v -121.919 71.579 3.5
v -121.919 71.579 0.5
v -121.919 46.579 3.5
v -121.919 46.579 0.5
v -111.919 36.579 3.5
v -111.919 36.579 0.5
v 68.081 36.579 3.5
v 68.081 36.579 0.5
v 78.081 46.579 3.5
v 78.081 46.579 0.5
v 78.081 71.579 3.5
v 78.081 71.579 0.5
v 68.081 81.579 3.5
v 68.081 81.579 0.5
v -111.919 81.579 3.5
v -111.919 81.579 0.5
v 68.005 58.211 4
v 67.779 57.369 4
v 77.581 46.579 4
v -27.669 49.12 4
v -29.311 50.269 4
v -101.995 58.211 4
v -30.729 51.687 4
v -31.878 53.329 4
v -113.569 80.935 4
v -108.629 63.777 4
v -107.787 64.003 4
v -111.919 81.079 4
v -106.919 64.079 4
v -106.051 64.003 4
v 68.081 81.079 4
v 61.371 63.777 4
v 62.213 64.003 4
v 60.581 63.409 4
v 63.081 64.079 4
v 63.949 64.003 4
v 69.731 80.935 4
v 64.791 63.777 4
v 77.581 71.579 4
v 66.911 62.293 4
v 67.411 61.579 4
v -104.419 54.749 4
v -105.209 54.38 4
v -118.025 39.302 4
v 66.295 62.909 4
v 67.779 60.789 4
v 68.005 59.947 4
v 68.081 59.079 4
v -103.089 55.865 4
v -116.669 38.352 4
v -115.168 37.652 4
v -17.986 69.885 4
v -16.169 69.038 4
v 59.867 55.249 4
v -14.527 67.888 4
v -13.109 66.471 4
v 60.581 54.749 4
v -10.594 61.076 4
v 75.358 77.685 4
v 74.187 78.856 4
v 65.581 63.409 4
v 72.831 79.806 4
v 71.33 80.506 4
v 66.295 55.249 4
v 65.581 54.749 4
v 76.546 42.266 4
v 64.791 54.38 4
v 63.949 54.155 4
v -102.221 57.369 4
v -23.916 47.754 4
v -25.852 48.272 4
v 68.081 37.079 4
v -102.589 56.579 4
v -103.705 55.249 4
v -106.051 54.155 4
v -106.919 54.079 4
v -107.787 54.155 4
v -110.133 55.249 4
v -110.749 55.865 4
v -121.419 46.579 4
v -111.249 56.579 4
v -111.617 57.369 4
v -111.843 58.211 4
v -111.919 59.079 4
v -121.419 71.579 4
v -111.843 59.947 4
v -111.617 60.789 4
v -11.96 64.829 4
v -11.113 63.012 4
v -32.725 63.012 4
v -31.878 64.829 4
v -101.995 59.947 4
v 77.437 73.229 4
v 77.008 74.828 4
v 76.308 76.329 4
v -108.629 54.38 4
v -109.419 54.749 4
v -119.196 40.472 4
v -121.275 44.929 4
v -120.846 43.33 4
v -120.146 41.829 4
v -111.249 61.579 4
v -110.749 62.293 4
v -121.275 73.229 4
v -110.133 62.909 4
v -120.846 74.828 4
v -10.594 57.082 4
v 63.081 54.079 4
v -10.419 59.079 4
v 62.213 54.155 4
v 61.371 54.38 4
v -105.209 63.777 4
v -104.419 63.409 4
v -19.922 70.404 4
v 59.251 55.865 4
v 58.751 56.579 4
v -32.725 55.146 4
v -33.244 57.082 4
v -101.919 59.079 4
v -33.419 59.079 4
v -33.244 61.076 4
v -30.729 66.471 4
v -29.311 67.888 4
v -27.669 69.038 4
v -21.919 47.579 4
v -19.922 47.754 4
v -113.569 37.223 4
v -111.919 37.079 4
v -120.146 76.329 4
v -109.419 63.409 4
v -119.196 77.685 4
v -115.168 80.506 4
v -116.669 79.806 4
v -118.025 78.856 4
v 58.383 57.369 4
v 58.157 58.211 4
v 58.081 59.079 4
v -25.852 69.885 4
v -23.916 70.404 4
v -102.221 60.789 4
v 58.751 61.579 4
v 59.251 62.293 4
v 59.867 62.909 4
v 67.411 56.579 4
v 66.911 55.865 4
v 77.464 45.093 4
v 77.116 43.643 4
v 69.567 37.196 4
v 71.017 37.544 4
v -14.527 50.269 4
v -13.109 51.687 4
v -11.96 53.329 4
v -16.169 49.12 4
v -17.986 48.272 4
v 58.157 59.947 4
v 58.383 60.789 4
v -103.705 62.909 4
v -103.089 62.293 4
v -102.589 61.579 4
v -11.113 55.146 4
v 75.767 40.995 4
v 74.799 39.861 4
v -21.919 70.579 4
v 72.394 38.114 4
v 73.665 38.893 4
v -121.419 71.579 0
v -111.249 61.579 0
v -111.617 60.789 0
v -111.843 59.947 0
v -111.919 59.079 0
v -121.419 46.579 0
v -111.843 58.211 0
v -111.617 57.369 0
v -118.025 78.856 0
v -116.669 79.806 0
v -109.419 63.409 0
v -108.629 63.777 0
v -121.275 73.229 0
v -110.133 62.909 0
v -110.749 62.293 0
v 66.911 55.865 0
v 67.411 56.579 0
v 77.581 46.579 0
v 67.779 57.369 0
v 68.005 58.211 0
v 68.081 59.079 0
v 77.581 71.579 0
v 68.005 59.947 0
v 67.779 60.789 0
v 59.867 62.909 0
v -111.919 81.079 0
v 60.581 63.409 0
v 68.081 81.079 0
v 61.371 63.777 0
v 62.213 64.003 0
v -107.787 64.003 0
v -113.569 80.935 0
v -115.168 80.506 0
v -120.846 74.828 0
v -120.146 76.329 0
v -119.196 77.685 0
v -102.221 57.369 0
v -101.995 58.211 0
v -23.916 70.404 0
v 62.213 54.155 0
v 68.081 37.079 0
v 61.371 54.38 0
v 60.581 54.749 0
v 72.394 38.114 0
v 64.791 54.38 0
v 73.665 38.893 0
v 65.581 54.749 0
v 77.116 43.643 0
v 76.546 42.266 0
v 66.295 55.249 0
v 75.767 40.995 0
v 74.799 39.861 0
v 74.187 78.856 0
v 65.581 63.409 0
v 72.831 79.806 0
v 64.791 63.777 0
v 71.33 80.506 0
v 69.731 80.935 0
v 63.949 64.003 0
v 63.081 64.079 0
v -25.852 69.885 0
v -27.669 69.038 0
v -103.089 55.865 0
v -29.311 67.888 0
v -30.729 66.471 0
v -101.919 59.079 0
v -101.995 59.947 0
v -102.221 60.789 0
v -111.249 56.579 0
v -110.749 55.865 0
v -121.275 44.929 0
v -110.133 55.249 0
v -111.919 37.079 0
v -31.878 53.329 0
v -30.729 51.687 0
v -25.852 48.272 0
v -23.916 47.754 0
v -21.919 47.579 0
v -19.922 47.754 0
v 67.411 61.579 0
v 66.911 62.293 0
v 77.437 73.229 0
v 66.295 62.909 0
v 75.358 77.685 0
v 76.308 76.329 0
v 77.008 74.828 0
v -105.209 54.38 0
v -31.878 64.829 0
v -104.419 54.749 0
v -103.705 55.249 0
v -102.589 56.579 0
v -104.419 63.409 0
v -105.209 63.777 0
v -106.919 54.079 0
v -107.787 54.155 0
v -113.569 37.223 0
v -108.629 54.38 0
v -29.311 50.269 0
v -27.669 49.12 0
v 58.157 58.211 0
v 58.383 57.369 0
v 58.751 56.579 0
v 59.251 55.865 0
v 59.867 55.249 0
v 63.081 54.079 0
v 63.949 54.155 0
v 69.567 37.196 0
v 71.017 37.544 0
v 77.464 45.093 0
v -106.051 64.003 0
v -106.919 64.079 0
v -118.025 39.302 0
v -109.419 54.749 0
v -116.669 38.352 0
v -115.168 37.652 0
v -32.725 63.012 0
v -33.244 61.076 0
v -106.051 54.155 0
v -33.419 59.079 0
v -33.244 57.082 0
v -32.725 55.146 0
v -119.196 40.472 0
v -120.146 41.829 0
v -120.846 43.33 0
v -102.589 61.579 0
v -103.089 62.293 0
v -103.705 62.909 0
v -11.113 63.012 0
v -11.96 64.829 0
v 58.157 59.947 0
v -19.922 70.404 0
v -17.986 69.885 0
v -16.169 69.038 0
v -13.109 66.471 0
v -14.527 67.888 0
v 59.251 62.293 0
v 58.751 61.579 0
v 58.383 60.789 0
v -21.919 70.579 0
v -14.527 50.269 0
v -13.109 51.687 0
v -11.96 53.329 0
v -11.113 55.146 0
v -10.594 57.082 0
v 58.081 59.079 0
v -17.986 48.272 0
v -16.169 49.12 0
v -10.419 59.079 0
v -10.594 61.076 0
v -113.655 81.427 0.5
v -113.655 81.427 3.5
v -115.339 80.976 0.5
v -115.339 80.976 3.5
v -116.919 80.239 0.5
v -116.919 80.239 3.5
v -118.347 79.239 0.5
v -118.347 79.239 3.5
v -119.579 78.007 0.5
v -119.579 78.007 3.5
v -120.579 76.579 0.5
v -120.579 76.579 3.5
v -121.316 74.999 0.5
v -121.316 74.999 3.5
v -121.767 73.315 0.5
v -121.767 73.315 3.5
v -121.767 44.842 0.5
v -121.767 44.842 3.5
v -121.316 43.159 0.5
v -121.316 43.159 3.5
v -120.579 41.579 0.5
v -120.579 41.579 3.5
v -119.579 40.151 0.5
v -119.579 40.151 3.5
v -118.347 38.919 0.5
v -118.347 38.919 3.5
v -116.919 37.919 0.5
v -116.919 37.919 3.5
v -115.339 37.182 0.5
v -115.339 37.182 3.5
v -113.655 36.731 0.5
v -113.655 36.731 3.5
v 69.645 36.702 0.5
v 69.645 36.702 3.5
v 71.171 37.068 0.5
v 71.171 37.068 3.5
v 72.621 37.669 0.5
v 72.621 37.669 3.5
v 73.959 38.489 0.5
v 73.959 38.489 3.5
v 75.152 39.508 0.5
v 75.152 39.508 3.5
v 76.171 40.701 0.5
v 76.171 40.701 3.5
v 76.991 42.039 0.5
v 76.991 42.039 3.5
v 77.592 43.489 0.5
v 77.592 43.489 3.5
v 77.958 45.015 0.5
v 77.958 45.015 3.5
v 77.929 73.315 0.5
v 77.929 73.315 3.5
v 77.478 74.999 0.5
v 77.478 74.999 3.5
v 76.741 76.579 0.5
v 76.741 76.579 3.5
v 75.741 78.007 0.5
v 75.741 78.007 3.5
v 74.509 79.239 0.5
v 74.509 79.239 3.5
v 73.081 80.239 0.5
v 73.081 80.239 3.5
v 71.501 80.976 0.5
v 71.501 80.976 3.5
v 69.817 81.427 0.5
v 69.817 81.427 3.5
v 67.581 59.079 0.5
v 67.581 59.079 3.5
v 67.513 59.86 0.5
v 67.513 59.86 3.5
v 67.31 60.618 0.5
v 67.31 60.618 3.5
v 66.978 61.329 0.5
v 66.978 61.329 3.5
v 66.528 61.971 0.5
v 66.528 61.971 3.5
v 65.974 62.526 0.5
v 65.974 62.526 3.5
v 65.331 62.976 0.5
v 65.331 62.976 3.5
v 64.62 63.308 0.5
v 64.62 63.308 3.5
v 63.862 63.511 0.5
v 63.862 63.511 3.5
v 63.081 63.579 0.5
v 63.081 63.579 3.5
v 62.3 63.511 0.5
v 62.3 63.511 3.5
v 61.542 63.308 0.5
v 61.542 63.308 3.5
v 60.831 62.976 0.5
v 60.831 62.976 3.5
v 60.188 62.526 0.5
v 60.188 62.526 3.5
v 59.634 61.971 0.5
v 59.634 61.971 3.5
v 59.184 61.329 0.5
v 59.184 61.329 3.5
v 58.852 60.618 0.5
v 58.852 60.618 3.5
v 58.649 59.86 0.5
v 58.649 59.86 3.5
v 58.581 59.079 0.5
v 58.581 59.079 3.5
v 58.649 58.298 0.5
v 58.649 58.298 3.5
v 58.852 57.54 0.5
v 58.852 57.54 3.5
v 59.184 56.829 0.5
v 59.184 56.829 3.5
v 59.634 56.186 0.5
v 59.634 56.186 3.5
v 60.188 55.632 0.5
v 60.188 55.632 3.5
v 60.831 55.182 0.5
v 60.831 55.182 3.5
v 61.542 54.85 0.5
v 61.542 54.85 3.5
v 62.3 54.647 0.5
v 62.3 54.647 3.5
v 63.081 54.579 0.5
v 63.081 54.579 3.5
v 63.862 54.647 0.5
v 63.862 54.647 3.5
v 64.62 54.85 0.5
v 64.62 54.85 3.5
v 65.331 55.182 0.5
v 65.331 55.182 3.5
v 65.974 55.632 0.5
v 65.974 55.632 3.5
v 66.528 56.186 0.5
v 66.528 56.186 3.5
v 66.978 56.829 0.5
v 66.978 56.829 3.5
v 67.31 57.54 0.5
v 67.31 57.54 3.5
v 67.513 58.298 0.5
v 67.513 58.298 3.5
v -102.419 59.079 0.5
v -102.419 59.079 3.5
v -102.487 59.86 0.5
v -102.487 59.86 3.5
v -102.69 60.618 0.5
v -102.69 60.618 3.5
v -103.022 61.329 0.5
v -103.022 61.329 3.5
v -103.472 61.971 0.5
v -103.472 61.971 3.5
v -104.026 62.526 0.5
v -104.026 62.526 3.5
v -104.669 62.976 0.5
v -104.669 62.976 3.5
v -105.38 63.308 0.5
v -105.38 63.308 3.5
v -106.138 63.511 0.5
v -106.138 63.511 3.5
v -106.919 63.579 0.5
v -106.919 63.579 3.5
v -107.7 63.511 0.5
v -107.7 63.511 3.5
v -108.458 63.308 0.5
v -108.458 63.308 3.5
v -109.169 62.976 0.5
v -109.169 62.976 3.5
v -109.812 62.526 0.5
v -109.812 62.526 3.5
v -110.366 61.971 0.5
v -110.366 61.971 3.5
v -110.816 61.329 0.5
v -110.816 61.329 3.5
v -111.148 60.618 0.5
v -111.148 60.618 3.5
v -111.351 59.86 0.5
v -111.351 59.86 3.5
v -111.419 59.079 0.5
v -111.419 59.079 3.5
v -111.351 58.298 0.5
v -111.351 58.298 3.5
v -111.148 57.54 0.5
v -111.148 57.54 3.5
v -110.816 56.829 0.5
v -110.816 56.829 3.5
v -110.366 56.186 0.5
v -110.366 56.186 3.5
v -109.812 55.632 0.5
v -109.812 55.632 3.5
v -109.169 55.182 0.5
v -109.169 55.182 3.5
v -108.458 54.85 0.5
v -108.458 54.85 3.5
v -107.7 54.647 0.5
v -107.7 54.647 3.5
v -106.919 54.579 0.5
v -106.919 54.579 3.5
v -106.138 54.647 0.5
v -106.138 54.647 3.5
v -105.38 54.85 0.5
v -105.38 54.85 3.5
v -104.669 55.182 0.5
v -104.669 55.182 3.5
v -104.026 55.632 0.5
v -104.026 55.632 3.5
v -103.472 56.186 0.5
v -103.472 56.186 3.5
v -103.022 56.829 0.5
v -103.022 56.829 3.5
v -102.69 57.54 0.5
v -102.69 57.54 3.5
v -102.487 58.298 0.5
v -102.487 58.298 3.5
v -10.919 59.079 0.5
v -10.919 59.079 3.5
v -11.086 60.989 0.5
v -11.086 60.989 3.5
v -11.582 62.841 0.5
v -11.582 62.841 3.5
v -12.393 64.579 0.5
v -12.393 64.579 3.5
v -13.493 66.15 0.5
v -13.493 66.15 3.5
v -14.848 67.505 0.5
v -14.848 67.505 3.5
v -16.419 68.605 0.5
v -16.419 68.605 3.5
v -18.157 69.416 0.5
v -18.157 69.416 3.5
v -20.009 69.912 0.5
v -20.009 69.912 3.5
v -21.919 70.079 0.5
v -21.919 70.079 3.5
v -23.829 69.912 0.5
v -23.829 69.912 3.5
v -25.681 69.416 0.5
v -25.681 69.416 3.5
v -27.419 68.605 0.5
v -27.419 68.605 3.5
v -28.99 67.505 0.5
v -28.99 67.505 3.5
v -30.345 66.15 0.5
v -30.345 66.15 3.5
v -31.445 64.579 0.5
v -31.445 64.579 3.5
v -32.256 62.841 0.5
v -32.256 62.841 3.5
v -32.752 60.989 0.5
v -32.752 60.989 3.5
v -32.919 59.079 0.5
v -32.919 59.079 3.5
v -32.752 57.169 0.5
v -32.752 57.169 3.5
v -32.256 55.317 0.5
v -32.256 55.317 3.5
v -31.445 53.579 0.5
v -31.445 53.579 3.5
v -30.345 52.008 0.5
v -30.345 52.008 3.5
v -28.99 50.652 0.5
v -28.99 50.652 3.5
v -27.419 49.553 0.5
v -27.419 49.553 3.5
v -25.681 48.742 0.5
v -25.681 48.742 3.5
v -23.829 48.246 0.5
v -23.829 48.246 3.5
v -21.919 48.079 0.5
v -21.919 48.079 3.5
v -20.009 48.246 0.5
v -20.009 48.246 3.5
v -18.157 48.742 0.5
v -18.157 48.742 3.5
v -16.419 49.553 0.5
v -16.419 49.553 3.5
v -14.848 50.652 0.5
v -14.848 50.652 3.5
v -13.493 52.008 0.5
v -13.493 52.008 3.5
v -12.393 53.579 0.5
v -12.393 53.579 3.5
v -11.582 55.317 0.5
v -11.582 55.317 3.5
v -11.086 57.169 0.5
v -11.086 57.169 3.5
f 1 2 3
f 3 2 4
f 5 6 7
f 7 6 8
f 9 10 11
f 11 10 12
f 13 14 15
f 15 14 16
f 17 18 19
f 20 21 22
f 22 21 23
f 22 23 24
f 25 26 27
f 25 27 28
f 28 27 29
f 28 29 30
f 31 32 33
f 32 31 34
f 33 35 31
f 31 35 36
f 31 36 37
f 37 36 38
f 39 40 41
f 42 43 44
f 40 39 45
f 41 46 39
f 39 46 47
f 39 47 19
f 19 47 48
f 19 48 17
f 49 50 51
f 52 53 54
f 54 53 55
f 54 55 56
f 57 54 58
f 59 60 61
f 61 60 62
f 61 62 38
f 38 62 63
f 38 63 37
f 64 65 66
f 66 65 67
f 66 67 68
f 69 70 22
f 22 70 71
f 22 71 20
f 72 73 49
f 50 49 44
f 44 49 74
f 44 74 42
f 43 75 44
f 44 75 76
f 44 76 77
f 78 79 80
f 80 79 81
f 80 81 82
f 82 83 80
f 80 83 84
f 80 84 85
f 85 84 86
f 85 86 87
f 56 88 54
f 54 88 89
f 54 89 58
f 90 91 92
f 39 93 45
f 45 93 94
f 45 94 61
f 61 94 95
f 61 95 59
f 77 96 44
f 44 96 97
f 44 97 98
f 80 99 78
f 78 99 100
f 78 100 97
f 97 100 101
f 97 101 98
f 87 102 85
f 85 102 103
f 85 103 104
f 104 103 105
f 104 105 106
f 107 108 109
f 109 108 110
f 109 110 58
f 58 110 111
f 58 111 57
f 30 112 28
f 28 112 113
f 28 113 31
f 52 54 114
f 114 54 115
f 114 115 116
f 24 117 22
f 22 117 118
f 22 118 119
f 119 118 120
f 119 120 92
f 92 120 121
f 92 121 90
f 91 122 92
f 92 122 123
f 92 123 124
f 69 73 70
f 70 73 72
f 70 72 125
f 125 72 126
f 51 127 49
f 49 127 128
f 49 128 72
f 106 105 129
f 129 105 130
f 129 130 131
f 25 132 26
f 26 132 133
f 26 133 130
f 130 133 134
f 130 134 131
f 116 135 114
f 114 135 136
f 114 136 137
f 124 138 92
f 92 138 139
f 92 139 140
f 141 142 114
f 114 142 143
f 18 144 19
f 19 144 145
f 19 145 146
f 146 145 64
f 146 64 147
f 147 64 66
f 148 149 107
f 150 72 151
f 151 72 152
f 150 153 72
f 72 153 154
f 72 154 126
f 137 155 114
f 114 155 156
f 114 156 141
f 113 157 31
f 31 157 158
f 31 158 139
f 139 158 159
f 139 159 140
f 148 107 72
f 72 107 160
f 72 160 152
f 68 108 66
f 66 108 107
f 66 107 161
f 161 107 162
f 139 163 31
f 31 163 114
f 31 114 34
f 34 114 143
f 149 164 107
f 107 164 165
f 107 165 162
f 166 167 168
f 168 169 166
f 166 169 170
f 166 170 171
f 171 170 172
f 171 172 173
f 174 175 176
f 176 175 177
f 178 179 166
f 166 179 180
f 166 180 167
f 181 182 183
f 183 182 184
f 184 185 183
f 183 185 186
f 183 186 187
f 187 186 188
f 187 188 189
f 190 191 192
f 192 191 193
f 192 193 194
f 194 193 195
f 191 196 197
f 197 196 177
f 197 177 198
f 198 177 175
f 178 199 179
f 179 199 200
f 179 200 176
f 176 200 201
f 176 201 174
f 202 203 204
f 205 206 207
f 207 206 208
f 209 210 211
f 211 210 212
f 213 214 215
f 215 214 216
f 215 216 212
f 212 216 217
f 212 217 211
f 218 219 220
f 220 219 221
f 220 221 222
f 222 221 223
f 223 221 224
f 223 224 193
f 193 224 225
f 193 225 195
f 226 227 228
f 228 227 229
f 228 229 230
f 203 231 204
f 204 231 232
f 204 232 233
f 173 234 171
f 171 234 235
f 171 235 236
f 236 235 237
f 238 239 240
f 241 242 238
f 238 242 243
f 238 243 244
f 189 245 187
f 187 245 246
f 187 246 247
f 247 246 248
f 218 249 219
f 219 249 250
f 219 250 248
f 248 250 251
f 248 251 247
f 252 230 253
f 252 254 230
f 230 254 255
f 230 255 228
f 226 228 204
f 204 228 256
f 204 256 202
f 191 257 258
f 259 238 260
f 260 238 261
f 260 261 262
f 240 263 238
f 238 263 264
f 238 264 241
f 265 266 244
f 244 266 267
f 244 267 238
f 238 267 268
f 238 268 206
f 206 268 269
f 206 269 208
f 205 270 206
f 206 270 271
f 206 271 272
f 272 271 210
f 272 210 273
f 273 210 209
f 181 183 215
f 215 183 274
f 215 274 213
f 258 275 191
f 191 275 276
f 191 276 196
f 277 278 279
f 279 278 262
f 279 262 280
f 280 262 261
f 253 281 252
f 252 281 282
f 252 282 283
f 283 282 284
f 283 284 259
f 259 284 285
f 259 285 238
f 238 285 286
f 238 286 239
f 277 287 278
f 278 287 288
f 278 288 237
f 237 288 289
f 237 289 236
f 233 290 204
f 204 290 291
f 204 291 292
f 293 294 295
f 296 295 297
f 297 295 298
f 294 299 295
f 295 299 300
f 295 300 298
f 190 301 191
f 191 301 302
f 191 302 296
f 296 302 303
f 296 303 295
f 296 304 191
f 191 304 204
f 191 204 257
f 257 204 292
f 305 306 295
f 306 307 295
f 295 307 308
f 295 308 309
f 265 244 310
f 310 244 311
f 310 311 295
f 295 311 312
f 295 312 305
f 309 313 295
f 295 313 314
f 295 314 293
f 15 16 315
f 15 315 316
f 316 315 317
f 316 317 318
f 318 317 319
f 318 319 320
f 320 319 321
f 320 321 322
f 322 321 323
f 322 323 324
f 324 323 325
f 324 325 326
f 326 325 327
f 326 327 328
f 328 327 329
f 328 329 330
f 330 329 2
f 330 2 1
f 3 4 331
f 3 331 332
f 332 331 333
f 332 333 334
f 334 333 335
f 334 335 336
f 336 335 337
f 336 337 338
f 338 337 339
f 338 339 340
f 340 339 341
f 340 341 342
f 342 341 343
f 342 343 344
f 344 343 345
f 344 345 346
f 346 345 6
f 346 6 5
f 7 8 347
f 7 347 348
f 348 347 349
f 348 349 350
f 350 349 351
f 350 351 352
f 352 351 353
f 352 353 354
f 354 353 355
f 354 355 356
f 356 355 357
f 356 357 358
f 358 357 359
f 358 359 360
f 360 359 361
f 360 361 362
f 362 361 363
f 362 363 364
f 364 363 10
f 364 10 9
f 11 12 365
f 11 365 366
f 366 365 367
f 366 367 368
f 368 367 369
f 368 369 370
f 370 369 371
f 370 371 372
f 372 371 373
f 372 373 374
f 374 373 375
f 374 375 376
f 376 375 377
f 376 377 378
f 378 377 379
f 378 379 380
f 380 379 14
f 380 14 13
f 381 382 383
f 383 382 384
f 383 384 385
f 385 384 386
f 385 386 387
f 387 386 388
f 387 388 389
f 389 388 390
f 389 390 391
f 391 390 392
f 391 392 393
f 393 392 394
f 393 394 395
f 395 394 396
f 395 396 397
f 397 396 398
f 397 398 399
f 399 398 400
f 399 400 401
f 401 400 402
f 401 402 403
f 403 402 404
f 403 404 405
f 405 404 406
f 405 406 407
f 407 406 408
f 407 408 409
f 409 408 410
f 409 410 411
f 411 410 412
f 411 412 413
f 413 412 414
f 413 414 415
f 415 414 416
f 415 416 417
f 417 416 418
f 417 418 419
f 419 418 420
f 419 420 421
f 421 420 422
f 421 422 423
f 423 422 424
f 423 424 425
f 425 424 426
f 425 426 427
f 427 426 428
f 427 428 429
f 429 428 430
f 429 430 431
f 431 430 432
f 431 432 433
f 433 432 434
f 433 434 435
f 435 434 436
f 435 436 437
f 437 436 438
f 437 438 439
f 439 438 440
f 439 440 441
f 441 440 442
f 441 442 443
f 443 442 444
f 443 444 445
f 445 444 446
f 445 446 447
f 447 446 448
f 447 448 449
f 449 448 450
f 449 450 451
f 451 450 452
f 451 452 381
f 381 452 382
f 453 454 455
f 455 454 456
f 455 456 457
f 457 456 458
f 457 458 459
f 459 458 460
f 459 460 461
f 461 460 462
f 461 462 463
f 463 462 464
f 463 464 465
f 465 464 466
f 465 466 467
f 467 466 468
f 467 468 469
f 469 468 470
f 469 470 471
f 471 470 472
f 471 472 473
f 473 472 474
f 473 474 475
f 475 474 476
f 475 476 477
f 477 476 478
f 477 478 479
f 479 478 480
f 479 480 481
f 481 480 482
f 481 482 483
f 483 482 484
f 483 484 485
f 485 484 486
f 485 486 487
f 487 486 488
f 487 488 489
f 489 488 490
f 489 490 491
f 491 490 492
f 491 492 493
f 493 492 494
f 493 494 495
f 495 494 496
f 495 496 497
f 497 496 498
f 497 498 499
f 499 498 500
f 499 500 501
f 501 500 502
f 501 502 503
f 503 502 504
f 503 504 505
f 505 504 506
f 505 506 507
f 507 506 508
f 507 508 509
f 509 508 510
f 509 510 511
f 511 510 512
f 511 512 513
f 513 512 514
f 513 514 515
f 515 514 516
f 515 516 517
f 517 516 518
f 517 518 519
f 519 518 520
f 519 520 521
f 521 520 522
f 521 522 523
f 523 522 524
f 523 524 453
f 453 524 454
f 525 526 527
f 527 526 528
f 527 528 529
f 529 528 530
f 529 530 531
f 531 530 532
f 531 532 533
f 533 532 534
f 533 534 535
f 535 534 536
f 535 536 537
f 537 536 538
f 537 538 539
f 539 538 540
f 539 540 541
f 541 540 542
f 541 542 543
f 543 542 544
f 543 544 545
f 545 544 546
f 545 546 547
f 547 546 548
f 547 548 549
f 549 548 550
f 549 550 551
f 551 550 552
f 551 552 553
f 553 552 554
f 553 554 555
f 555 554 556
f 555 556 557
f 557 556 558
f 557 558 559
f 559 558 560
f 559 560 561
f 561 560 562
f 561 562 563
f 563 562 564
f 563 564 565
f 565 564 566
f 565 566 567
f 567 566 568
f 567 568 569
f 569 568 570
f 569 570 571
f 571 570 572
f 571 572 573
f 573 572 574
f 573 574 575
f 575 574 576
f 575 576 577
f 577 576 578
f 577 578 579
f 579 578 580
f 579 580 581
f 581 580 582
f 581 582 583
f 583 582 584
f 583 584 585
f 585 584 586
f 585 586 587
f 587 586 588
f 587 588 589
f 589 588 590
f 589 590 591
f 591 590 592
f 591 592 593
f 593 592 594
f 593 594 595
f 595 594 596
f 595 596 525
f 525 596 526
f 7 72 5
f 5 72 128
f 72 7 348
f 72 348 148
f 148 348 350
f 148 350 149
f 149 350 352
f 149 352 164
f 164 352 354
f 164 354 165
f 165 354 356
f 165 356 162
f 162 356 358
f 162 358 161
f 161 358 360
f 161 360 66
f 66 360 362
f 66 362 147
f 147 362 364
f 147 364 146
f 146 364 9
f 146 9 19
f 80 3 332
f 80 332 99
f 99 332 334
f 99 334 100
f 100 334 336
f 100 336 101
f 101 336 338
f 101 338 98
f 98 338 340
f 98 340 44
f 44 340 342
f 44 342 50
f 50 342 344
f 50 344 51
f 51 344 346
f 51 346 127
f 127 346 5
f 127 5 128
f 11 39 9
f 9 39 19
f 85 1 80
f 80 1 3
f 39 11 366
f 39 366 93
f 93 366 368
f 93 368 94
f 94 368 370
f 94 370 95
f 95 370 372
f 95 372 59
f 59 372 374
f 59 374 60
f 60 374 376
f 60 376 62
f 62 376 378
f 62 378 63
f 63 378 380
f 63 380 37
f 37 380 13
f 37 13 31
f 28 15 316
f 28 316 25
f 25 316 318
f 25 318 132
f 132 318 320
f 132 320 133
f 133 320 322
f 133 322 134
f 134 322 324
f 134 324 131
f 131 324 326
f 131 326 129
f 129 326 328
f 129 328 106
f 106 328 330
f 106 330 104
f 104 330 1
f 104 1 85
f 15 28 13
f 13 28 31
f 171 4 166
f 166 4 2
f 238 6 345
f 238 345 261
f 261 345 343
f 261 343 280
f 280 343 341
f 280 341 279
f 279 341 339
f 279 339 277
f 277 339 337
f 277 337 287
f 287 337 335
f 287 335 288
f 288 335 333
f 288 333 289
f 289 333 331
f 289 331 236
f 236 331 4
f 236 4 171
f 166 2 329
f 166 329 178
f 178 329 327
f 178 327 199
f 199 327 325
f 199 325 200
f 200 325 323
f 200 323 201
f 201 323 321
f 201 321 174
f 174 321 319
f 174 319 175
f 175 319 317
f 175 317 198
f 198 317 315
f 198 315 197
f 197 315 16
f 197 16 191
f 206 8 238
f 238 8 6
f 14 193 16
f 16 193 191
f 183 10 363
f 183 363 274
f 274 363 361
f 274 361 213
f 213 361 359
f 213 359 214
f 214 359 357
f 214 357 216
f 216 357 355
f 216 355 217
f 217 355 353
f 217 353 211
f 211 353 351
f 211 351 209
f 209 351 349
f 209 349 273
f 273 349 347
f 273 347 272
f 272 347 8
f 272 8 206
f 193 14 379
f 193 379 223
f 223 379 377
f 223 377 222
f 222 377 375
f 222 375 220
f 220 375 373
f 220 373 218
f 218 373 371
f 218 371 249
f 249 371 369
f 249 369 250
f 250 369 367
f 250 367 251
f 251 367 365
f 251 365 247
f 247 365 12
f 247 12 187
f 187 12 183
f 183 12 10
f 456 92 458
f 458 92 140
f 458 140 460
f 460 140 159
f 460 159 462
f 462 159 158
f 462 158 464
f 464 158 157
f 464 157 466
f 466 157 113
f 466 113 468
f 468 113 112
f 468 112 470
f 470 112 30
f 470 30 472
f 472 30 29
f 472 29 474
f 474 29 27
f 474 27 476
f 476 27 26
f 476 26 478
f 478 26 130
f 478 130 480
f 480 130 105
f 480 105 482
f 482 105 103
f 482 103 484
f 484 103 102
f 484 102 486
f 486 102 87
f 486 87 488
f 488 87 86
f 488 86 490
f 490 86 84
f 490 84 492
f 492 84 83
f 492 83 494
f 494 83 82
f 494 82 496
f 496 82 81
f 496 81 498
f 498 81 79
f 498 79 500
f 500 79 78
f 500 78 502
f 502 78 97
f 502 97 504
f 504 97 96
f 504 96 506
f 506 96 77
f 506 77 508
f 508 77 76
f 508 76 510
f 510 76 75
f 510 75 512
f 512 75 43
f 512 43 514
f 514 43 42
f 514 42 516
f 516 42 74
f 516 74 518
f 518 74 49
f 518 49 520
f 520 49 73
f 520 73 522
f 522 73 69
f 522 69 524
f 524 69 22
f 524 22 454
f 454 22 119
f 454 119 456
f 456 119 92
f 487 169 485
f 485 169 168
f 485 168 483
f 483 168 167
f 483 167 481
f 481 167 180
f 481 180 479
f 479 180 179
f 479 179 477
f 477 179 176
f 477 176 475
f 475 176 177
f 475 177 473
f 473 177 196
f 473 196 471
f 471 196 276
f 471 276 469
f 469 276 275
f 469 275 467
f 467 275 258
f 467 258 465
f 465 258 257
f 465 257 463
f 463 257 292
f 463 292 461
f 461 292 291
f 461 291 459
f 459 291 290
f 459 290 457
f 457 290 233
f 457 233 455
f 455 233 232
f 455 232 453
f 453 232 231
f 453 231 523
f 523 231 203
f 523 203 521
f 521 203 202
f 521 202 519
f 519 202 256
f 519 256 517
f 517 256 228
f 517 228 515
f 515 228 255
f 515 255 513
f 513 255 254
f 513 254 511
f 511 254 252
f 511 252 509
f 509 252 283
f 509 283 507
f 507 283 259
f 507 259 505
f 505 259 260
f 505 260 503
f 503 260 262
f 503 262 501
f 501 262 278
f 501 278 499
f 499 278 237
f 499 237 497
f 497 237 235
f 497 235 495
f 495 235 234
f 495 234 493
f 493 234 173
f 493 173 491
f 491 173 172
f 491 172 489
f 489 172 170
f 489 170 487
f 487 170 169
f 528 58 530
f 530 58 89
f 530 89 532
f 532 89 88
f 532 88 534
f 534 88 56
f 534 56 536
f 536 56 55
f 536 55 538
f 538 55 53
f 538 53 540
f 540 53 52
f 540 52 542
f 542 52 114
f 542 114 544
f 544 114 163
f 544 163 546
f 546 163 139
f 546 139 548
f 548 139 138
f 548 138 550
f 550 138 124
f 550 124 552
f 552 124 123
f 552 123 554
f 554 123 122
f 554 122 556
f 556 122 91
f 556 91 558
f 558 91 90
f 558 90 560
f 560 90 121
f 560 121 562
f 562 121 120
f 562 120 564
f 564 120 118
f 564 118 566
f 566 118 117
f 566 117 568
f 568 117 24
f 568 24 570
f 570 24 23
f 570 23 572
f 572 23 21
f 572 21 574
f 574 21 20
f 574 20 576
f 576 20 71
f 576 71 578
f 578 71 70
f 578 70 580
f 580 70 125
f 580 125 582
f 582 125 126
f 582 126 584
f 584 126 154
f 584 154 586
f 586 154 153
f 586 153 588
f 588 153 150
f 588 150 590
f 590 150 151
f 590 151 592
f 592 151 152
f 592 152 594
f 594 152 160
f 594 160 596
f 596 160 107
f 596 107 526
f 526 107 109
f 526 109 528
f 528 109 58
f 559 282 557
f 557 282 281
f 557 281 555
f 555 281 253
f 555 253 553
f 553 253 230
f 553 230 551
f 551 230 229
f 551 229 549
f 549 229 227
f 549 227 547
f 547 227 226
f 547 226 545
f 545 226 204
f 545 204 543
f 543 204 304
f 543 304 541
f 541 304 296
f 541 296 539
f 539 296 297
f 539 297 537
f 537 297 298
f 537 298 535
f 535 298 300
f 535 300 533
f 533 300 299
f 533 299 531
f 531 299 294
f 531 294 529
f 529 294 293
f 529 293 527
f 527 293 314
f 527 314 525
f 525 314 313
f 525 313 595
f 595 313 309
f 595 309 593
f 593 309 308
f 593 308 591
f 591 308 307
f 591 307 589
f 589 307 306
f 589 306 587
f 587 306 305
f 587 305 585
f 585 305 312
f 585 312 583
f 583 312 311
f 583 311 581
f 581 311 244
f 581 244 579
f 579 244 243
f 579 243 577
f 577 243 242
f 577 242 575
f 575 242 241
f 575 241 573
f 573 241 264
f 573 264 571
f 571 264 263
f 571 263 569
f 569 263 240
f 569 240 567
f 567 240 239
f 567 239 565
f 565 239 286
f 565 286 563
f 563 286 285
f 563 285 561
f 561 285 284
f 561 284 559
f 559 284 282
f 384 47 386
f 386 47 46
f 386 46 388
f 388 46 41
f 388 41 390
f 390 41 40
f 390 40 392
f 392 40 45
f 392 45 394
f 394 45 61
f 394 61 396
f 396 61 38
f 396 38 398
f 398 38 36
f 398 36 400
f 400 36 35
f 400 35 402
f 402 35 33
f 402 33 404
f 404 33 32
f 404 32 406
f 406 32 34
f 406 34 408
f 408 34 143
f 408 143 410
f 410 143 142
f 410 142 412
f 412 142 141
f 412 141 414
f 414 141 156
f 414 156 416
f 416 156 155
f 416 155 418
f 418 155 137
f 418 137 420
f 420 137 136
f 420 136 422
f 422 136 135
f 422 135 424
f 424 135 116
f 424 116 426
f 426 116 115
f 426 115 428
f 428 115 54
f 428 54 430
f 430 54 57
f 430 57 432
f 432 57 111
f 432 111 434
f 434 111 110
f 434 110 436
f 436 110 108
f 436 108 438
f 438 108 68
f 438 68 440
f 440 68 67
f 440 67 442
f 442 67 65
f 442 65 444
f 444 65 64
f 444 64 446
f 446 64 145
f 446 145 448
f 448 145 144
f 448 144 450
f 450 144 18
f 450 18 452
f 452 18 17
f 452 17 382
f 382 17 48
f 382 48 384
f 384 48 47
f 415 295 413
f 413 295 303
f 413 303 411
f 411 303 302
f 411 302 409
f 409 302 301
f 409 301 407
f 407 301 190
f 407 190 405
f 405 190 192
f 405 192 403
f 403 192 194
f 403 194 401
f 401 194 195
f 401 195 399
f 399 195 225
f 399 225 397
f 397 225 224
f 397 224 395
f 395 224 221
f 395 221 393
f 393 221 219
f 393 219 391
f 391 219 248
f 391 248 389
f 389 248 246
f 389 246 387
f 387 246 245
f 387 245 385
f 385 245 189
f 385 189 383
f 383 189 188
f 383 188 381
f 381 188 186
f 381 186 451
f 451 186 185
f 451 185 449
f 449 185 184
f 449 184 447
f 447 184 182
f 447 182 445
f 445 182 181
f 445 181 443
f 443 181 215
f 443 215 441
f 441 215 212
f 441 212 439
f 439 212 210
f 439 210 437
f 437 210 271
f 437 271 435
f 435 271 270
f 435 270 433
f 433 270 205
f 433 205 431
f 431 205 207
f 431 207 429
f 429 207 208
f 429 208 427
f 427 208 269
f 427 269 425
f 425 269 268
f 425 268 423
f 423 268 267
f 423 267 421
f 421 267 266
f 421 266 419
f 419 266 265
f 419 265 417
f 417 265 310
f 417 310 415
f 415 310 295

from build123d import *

# Parameters (mm, degrees)
ESQUISSE1_W        = 200
ESQUISSE1_H        = 45
BOSS_EXTRU_1_DEPTH = 4
CONG_2_R           = 10
D_GAGEMENT_M81_D   = 9
D_GAGEMENT_M201_D  = 22
CHANFREIN2_SIZE    = 0.5
CHANFREIN3_SIZE    = 0.5


with BuildPart() as part:
    # Esquisse1 → Boss.-Extru.1 (new body)
    with BuildSketch(Plane.XY):
        with Locations((-21.919003271, 59.078947368)):
            Rectangle(ESQUISSE1_W, ESQUISSE1_H)
    extrude(amount=BOSS_EXTRU_1_DEPTH)

    # Congé2
    cong_2_edges = [part.edges().sort_by_distance(p)[0] for p in [
        (-121.919003271, 81.578947368, 2),
        (78.080996729, 81.578947368, 2),
        (78.080996729, 36.578947368, 2),
        (-121.919003271, 36.578947368, 2),
    ]]
    fillet(cong_2_edges, radius=CONG_2_R)

    # Dégagement M81 (through all)
    with Locations(Plane.XY.offset(4)):
        with Locations((-106.919003271, 59.078947368), (63.080996729, 59.078947368)):
            Hole(D_GAGEMENT_M81_D / 2)

    # Dégagement M201 (through all)
    with Locations(Plane.XY.offset(4)):
        with Locations((-21.919003271, 59.078947368)):
            Hole(D_GAGEMENT_M201_D / 2)

    # Chanfrein2
    chanfrein2_edges = [part.edges().sort_by_distance(p)[0] for p in [
        (-121.919003271, 59.078947368, 0),
        (-121.919003271, 59.078947368, 4),
        (-21.919003271, 81.578947368, 0),
        (78.080996729, 59.078947368, 0),
        (-21.919003271, 36.578947368, 0),
        (75.15206454, 78.65001518, 0),
        (75.15206454, 39.507879557, 0),
        (-118.990071083, 39.507879557, 0),
        (-118.990071083, 78.65001518, 0),
        (-21.919003271, 81.578947368, 4),
        (-21.919003271, 36.578947368, 4),
        (78.080996729, 59.078947368, 4),
        (75.15206454, 78.65001518, 4),
        (75.15206454, 39.507879557, 4),
        (-118.990071083, 39.507879557, 4),
        (-118.990071083, 78.65001518, 4),
    ]]
    chamfer(chanfrein2_edges, length=CHANFREIN2_SIZE)

    # Chanfrein3
    chanfrein3_edges = [part.edges().sort_by_distance(p)[0] for p in [
        (67.580996729, 59.078947368, 4),
        (67.580996729, 59.078947368, 0),
        (-102.419003271, 59.078947368, 4),
        (-102.419003271, 59.078947368, 0),
        (-10.919003271, 59.078947368, 4),
        (-10.919003271, 59.078947368, 0),
    ]]
    chamfer(chanfrein3_edges, length=CHANFREIN3_SIZE)


solid = part.part
